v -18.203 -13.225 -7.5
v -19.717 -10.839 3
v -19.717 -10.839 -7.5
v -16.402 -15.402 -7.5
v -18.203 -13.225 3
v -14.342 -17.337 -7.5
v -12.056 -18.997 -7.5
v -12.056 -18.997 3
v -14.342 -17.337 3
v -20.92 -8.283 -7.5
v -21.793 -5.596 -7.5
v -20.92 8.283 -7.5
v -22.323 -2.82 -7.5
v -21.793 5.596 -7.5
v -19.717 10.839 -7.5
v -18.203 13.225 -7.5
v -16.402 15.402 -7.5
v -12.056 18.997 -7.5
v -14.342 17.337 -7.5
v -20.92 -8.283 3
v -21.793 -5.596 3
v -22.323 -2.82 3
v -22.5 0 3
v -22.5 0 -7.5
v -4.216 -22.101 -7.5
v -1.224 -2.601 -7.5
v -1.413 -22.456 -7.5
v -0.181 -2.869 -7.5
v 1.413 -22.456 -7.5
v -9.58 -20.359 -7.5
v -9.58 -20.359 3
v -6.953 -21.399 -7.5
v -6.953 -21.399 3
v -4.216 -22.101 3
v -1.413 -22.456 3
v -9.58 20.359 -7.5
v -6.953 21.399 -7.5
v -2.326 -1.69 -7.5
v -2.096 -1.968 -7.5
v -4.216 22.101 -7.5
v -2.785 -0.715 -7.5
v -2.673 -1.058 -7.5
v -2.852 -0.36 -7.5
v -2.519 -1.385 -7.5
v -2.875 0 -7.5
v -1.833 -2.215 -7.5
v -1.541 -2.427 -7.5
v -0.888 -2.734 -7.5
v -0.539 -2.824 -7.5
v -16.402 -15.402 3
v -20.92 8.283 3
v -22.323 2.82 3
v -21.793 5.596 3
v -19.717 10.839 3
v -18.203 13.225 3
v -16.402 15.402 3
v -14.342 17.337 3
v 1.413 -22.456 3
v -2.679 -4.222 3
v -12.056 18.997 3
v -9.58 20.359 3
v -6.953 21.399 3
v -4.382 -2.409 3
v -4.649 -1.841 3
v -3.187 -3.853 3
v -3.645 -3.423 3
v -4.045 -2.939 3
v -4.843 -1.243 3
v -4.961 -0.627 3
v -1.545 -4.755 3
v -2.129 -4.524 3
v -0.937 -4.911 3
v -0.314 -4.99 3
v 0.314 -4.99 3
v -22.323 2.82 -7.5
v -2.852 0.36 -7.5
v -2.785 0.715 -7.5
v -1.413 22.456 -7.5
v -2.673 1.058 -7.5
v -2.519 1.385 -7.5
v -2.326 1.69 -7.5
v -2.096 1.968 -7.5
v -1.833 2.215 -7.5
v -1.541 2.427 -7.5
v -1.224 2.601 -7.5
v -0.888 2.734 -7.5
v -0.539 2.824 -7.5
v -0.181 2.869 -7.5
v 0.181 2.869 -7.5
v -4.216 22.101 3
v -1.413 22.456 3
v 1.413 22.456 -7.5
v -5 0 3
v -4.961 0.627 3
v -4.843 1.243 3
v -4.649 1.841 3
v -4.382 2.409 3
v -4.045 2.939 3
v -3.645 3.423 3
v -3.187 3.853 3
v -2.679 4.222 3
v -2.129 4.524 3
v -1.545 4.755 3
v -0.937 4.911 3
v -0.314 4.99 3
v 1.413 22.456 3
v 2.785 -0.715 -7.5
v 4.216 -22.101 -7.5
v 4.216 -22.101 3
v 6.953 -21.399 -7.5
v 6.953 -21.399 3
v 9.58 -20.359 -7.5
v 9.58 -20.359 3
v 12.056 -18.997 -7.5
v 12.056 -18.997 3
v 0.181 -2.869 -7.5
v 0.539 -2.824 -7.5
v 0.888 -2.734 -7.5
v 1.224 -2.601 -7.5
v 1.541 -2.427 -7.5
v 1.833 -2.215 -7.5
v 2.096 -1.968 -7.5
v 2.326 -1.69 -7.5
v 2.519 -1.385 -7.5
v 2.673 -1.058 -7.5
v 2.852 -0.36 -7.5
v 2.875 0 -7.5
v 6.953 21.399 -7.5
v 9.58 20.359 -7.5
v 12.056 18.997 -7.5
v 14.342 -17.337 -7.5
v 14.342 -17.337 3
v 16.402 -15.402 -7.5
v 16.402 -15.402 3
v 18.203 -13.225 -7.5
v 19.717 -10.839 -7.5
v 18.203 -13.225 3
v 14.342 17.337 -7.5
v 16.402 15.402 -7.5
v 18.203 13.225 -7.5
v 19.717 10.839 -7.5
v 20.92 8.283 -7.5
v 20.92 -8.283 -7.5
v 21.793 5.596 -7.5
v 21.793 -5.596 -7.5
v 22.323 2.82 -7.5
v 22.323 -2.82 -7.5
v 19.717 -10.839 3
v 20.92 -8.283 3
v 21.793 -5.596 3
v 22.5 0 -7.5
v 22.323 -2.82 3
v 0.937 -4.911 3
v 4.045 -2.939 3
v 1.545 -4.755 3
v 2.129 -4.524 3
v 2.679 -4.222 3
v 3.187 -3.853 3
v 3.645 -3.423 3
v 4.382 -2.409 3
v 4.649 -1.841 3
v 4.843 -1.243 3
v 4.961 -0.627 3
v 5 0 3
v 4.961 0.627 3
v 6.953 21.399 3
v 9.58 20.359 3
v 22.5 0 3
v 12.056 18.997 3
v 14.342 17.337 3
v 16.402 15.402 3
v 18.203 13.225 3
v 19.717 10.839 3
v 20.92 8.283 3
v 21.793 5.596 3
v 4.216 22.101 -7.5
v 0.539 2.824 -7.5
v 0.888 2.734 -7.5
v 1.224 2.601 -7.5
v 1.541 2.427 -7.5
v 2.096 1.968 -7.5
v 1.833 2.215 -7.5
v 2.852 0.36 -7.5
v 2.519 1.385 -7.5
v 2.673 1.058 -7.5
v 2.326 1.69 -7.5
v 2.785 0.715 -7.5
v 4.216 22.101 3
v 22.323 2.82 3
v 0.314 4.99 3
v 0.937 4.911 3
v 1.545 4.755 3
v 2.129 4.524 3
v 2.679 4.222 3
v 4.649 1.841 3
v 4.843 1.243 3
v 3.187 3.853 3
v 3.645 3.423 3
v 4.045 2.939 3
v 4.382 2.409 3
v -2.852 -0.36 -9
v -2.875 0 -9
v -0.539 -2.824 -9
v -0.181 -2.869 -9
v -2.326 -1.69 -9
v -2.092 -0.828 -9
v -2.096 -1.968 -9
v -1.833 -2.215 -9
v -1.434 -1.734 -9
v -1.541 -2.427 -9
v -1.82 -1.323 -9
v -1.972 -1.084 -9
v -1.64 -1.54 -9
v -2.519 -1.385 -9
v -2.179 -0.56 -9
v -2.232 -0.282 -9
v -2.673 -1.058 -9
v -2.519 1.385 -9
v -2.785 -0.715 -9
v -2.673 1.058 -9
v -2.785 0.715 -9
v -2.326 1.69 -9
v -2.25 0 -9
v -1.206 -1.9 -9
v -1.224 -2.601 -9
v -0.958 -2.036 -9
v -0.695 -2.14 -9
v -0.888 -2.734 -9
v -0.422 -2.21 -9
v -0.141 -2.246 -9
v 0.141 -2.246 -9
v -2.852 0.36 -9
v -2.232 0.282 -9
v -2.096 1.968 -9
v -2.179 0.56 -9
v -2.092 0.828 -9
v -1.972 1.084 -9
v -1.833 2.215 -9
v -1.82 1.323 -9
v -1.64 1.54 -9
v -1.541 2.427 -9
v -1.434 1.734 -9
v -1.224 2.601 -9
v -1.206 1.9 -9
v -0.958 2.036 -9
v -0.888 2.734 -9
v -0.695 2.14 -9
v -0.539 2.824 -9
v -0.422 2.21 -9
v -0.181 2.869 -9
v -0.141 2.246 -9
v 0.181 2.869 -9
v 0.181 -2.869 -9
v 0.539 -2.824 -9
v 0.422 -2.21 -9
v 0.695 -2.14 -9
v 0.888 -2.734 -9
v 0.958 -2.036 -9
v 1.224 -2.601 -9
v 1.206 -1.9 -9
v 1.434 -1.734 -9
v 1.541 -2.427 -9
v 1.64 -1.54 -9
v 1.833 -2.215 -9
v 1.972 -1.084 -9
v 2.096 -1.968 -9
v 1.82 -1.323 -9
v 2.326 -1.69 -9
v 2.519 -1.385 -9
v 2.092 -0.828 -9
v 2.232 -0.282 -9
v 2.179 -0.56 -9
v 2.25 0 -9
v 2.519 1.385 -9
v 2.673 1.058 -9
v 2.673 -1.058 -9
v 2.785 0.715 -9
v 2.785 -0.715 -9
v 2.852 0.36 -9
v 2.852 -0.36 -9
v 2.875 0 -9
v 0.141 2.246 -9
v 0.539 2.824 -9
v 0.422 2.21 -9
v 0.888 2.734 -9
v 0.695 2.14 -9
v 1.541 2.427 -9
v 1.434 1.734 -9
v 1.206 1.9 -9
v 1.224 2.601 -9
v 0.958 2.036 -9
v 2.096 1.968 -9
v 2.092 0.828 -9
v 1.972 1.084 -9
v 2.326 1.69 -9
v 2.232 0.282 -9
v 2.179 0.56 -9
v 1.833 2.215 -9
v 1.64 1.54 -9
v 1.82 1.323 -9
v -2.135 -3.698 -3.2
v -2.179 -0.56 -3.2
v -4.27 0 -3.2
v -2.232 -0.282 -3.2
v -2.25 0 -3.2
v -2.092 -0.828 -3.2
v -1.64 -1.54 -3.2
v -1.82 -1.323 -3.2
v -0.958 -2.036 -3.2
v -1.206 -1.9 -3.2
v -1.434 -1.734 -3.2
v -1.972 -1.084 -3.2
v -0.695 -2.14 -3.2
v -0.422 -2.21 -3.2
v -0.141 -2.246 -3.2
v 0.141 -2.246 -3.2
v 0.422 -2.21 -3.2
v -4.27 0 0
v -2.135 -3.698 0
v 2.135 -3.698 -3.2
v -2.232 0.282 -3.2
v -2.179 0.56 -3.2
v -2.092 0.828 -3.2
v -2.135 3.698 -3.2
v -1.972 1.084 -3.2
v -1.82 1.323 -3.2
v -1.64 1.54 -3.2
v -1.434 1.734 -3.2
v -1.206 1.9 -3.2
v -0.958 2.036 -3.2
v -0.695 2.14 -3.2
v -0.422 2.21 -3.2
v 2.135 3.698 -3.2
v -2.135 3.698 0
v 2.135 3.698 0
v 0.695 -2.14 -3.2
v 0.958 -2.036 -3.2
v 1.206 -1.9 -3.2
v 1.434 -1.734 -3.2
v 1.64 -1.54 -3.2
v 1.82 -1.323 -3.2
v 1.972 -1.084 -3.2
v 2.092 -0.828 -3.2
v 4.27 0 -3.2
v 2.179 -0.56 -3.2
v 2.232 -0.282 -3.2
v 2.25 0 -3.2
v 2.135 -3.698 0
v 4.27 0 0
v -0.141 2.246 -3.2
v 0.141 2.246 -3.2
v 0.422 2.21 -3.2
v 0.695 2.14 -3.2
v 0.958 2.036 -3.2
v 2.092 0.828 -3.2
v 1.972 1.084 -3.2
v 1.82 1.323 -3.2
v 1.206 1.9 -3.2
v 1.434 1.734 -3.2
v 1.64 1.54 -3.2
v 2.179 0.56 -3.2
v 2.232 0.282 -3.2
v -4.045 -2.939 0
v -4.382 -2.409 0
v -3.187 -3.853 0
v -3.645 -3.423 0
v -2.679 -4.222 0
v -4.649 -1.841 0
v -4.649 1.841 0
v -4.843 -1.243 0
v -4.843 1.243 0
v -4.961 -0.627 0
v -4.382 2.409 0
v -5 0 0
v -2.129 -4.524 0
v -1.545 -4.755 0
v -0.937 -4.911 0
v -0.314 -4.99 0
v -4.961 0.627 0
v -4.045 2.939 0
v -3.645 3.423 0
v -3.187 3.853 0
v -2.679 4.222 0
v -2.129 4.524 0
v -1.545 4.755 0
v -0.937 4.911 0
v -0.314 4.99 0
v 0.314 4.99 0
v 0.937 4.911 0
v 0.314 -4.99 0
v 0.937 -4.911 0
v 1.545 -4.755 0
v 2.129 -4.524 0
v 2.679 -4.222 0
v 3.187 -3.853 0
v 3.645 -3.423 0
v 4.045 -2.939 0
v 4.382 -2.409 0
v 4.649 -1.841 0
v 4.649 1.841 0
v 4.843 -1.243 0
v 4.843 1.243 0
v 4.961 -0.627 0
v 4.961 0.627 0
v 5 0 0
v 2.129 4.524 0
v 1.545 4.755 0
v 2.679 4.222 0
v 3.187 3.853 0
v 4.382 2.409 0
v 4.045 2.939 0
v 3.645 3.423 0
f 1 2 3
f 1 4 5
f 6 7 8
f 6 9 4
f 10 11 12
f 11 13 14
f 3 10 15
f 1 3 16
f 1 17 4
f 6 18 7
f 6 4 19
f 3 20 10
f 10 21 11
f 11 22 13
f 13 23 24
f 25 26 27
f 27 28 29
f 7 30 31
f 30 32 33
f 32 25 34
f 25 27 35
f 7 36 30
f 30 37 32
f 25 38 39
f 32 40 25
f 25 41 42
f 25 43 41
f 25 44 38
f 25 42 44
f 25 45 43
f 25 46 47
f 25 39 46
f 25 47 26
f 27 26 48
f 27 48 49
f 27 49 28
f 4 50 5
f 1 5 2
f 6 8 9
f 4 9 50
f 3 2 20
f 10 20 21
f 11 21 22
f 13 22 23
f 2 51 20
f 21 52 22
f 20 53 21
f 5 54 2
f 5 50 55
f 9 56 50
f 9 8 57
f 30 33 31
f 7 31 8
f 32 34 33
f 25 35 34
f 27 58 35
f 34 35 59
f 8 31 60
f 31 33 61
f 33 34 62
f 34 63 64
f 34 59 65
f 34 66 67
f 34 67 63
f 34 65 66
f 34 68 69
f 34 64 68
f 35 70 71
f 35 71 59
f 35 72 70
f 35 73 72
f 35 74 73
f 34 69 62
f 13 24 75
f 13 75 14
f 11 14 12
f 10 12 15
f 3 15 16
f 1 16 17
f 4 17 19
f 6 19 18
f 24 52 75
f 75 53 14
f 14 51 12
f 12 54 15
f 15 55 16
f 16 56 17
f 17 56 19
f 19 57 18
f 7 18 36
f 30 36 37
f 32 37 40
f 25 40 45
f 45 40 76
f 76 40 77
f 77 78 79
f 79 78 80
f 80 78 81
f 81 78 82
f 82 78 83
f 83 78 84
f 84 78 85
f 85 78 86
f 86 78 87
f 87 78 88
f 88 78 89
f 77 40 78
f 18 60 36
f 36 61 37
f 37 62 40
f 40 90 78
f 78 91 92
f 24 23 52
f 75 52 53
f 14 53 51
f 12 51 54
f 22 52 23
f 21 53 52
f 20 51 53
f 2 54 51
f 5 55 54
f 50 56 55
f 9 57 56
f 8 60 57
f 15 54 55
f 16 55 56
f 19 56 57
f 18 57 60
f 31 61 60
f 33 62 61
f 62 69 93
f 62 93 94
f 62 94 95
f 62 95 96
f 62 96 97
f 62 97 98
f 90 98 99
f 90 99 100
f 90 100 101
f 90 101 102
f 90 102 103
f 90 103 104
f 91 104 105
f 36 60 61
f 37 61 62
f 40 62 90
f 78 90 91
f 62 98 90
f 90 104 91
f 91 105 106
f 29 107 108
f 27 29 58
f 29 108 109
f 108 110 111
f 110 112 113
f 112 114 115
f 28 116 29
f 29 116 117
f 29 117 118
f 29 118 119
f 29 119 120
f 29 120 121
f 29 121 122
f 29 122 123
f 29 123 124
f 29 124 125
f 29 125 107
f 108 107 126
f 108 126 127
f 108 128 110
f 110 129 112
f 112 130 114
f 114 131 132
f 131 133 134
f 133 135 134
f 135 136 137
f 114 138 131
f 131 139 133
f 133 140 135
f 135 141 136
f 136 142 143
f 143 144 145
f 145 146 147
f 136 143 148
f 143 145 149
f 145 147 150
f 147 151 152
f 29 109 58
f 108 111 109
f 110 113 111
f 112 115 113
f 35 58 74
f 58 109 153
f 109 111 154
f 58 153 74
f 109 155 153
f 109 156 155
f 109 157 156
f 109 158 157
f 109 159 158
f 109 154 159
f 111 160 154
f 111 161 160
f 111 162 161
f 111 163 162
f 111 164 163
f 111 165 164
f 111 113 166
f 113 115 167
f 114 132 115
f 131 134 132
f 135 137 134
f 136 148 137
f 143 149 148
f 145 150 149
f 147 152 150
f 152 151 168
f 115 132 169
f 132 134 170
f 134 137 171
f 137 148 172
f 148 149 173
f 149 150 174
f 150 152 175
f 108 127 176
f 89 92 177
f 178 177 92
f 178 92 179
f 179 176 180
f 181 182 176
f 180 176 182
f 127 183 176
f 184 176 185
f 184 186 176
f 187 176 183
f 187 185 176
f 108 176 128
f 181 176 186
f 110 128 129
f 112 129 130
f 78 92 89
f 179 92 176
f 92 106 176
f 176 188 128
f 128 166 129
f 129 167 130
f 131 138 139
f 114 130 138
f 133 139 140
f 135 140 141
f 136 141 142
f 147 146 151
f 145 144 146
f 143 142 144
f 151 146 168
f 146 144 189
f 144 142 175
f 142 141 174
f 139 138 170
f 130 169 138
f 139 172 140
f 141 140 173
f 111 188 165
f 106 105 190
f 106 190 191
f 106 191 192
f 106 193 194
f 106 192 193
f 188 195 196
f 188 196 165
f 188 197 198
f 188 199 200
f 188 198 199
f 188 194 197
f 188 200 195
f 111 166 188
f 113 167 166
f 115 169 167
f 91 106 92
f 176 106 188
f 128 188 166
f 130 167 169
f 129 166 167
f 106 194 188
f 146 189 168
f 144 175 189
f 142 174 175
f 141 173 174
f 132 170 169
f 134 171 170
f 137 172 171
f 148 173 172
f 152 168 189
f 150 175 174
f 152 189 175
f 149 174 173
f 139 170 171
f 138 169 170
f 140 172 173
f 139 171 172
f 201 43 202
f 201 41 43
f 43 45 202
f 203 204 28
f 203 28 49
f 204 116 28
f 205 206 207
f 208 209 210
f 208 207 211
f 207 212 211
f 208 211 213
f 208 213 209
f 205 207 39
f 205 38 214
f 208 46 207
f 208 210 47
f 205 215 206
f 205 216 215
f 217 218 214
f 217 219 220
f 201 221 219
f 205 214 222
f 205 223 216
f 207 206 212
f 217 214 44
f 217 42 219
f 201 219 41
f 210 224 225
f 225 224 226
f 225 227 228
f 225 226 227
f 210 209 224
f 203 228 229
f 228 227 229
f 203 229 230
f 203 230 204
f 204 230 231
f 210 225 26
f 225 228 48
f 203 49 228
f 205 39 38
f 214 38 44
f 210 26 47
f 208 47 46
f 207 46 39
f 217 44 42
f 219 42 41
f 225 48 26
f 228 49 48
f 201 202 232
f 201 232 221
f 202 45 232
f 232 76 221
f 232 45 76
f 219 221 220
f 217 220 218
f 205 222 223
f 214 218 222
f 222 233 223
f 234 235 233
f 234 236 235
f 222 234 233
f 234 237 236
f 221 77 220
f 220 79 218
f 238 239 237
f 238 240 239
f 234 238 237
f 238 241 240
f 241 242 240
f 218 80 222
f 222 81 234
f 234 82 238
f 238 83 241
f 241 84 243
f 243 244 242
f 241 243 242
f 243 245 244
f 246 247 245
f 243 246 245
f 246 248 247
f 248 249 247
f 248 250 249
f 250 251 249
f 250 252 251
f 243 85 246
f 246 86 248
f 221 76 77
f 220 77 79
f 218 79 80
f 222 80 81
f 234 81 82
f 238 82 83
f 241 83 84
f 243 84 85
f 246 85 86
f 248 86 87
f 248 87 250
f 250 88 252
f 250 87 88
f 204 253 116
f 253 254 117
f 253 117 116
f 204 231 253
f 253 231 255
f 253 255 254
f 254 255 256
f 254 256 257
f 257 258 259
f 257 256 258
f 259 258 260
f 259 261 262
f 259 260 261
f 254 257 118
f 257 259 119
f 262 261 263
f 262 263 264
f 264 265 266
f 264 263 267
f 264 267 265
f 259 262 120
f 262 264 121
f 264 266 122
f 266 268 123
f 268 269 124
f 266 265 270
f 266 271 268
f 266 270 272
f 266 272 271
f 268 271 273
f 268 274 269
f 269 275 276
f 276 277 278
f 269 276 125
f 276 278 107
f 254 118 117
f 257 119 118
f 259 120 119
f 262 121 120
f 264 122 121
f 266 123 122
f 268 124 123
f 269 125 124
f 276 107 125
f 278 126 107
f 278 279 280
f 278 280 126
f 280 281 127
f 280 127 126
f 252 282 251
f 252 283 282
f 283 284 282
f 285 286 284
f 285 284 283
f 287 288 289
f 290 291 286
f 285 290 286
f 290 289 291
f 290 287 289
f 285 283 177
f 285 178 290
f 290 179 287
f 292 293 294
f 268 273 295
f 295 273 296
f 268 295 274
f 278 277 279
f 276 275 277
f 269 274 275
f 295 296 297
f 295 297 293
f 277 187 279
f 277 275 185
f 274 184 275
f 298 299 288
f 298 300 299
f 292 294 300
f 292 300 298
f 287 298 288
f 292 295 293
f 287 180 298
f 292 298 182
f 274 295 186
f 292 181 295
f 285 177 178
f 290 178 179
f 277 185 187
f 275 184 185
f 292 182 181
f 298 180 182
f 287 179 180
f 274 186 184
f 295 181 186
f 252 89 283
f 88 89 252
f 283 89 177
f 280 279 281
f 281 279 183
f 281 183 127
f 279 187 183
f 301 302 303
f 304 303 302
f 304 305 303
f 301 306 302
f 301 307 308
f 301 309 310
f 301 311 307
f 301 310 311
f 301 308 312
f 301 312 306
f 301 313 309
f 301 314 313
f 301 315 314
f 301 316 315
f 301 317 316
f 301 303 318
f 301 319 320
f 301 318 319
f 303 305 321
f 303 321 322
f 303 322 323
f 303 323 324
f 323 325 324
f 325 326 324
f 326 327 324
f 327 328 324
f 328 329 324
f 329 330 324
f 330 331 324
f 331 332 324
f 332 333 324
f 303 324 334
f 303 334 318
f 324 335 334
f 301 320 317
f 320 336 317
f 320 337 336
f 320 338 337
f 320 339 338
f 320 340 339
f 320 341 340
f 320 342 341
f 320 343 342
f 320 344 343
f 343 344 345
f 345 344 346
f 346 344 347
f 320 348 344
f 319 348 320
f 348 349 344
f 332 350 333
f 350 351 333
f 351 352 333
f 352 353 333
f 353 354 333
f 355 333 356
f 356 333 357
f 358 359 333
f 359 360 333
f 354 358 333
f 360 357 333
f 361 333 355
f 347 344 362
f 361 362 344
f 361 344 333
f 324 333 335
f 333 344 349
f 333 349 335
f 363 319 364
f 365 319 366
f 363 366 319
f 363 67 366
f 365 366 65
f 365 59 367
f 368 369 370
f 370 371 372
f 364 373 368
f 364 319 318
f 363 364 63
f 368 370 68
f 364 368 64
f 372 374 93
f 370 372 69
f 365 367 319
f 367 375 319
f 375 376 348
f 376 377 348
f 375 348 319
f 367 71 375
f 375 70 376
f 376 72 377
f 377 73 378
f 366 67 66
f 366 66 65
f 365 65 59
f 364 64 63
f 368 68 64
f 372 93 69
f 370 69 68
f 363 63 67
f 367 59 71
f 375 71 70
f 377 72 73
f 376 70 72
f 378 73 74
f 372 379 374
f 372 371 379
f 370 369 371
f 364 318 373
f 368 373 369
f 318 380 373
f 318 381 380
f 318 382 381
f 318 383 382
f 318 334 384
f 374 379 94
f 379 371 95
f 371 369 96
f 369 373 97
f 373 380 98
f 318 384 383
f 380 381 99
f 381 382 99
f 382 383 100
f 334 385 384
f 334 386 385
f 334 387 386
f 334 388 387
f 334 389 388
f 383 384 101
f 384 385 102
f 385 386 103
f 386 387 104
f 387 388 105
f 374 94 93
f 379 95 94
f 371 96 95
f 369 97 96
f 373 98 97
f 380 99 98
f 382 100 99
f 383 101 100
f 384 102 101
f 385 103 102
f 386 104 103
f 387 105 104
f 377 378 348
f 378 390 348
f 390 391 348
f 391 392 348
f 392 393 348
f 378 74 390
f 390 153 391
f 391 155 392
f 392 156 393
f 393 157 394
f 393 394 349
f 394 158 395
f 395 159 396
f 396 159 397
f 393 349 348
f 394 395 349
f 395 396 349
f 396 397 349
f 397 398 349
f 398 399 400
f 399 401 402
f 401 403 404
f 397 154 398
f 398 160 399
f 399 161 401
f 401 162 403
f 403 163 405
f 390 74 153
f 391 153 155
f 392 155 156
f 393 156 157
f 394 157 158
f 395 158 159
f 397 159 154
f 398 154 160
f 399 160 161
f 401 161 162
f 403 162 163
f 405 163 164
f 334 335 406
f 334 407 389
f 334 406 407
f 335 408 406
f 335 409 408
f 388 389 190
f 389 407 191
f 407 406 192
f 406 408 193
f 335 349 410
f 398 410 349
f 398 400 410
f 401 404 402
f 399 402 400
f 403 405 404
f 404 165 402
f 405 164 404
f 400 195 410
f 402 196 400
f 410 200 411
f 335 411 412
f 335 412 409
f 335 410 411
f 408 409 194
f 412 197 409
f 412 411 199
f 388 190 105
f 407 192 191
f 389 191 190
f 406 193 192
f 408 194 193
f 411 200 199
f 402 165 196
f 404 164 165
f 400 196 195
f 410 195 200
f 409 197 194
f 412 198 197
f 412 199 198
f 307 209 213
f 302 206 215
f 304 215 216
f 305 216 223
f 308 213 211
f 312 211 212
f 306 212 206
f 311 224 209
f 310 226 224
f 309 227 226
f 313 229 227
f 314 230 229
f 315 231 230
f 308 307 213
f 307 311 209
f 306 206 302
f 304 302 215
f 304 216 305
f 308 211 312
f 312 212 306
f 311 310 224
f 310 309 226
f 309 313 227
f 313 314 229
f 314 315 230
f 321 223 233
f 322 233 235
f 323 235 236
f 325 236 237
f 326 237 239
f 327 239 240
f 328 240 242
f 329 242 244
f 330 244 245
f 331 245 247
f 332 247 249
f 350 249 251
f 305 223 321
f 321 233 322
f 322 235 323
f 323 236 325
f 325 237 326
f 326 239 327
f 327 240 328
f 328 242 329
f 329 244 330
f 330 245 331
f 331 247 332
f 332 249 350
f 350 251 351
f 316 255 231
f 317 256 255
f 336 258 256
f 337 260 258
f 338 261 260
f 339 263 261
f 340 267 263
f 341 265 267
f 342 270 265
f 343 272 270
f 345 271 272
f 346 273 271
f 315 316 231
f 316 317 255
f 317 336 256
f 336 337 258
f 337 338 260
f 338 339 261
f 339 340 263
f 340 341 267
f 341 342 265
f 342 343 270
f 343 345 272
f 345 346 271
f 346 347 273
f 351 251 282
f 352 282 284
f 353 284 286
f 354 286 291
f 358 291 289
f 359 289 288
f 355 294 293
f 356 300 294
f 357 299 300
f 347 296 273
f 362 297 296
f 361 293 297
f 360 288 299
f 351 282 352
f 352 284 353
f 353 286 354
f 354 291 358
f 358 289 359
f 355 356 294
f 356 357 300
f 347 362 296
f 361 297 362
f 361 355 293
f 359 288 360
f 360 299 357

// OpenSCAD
$fn = 50;

difference() {
	union() {
		translate(v = [0, 0, -7.5]) {
			cylinder(h = 10.5, r = 22.5);
		}
		#translate(v = [0, 0, -9.0]) {
			cylinder(h = 9, r = 2.875);
		}
	}
	union() {
		translate(v = [0, 0, 0]) {
			rotate(a = [0, 0, 0]) {
				difference() {
					union() {
						translate(v = [0, 0, -3.2]) {
							linear_extrude(height = 3.2) {
								polygon(points = [[4.2698, 0.0], [2.1349000000000005, 3.697755269078796], [-2.134899999999999, 3.6977552690787965], [-4.2698, 5.228996902999369e-16], [-2.134900000000002, -3.6977552690787956], [2.1348999999999974, -3.697755269078798]]);
							}
						}
					}
					union();
				}
			}
		}
		#cylinder(h = 3, r = 5.0);
		#translate(v = [0, 0, -100.0]) {
			cylinder(h = 200, r = 2.25);
		}
	}
}
